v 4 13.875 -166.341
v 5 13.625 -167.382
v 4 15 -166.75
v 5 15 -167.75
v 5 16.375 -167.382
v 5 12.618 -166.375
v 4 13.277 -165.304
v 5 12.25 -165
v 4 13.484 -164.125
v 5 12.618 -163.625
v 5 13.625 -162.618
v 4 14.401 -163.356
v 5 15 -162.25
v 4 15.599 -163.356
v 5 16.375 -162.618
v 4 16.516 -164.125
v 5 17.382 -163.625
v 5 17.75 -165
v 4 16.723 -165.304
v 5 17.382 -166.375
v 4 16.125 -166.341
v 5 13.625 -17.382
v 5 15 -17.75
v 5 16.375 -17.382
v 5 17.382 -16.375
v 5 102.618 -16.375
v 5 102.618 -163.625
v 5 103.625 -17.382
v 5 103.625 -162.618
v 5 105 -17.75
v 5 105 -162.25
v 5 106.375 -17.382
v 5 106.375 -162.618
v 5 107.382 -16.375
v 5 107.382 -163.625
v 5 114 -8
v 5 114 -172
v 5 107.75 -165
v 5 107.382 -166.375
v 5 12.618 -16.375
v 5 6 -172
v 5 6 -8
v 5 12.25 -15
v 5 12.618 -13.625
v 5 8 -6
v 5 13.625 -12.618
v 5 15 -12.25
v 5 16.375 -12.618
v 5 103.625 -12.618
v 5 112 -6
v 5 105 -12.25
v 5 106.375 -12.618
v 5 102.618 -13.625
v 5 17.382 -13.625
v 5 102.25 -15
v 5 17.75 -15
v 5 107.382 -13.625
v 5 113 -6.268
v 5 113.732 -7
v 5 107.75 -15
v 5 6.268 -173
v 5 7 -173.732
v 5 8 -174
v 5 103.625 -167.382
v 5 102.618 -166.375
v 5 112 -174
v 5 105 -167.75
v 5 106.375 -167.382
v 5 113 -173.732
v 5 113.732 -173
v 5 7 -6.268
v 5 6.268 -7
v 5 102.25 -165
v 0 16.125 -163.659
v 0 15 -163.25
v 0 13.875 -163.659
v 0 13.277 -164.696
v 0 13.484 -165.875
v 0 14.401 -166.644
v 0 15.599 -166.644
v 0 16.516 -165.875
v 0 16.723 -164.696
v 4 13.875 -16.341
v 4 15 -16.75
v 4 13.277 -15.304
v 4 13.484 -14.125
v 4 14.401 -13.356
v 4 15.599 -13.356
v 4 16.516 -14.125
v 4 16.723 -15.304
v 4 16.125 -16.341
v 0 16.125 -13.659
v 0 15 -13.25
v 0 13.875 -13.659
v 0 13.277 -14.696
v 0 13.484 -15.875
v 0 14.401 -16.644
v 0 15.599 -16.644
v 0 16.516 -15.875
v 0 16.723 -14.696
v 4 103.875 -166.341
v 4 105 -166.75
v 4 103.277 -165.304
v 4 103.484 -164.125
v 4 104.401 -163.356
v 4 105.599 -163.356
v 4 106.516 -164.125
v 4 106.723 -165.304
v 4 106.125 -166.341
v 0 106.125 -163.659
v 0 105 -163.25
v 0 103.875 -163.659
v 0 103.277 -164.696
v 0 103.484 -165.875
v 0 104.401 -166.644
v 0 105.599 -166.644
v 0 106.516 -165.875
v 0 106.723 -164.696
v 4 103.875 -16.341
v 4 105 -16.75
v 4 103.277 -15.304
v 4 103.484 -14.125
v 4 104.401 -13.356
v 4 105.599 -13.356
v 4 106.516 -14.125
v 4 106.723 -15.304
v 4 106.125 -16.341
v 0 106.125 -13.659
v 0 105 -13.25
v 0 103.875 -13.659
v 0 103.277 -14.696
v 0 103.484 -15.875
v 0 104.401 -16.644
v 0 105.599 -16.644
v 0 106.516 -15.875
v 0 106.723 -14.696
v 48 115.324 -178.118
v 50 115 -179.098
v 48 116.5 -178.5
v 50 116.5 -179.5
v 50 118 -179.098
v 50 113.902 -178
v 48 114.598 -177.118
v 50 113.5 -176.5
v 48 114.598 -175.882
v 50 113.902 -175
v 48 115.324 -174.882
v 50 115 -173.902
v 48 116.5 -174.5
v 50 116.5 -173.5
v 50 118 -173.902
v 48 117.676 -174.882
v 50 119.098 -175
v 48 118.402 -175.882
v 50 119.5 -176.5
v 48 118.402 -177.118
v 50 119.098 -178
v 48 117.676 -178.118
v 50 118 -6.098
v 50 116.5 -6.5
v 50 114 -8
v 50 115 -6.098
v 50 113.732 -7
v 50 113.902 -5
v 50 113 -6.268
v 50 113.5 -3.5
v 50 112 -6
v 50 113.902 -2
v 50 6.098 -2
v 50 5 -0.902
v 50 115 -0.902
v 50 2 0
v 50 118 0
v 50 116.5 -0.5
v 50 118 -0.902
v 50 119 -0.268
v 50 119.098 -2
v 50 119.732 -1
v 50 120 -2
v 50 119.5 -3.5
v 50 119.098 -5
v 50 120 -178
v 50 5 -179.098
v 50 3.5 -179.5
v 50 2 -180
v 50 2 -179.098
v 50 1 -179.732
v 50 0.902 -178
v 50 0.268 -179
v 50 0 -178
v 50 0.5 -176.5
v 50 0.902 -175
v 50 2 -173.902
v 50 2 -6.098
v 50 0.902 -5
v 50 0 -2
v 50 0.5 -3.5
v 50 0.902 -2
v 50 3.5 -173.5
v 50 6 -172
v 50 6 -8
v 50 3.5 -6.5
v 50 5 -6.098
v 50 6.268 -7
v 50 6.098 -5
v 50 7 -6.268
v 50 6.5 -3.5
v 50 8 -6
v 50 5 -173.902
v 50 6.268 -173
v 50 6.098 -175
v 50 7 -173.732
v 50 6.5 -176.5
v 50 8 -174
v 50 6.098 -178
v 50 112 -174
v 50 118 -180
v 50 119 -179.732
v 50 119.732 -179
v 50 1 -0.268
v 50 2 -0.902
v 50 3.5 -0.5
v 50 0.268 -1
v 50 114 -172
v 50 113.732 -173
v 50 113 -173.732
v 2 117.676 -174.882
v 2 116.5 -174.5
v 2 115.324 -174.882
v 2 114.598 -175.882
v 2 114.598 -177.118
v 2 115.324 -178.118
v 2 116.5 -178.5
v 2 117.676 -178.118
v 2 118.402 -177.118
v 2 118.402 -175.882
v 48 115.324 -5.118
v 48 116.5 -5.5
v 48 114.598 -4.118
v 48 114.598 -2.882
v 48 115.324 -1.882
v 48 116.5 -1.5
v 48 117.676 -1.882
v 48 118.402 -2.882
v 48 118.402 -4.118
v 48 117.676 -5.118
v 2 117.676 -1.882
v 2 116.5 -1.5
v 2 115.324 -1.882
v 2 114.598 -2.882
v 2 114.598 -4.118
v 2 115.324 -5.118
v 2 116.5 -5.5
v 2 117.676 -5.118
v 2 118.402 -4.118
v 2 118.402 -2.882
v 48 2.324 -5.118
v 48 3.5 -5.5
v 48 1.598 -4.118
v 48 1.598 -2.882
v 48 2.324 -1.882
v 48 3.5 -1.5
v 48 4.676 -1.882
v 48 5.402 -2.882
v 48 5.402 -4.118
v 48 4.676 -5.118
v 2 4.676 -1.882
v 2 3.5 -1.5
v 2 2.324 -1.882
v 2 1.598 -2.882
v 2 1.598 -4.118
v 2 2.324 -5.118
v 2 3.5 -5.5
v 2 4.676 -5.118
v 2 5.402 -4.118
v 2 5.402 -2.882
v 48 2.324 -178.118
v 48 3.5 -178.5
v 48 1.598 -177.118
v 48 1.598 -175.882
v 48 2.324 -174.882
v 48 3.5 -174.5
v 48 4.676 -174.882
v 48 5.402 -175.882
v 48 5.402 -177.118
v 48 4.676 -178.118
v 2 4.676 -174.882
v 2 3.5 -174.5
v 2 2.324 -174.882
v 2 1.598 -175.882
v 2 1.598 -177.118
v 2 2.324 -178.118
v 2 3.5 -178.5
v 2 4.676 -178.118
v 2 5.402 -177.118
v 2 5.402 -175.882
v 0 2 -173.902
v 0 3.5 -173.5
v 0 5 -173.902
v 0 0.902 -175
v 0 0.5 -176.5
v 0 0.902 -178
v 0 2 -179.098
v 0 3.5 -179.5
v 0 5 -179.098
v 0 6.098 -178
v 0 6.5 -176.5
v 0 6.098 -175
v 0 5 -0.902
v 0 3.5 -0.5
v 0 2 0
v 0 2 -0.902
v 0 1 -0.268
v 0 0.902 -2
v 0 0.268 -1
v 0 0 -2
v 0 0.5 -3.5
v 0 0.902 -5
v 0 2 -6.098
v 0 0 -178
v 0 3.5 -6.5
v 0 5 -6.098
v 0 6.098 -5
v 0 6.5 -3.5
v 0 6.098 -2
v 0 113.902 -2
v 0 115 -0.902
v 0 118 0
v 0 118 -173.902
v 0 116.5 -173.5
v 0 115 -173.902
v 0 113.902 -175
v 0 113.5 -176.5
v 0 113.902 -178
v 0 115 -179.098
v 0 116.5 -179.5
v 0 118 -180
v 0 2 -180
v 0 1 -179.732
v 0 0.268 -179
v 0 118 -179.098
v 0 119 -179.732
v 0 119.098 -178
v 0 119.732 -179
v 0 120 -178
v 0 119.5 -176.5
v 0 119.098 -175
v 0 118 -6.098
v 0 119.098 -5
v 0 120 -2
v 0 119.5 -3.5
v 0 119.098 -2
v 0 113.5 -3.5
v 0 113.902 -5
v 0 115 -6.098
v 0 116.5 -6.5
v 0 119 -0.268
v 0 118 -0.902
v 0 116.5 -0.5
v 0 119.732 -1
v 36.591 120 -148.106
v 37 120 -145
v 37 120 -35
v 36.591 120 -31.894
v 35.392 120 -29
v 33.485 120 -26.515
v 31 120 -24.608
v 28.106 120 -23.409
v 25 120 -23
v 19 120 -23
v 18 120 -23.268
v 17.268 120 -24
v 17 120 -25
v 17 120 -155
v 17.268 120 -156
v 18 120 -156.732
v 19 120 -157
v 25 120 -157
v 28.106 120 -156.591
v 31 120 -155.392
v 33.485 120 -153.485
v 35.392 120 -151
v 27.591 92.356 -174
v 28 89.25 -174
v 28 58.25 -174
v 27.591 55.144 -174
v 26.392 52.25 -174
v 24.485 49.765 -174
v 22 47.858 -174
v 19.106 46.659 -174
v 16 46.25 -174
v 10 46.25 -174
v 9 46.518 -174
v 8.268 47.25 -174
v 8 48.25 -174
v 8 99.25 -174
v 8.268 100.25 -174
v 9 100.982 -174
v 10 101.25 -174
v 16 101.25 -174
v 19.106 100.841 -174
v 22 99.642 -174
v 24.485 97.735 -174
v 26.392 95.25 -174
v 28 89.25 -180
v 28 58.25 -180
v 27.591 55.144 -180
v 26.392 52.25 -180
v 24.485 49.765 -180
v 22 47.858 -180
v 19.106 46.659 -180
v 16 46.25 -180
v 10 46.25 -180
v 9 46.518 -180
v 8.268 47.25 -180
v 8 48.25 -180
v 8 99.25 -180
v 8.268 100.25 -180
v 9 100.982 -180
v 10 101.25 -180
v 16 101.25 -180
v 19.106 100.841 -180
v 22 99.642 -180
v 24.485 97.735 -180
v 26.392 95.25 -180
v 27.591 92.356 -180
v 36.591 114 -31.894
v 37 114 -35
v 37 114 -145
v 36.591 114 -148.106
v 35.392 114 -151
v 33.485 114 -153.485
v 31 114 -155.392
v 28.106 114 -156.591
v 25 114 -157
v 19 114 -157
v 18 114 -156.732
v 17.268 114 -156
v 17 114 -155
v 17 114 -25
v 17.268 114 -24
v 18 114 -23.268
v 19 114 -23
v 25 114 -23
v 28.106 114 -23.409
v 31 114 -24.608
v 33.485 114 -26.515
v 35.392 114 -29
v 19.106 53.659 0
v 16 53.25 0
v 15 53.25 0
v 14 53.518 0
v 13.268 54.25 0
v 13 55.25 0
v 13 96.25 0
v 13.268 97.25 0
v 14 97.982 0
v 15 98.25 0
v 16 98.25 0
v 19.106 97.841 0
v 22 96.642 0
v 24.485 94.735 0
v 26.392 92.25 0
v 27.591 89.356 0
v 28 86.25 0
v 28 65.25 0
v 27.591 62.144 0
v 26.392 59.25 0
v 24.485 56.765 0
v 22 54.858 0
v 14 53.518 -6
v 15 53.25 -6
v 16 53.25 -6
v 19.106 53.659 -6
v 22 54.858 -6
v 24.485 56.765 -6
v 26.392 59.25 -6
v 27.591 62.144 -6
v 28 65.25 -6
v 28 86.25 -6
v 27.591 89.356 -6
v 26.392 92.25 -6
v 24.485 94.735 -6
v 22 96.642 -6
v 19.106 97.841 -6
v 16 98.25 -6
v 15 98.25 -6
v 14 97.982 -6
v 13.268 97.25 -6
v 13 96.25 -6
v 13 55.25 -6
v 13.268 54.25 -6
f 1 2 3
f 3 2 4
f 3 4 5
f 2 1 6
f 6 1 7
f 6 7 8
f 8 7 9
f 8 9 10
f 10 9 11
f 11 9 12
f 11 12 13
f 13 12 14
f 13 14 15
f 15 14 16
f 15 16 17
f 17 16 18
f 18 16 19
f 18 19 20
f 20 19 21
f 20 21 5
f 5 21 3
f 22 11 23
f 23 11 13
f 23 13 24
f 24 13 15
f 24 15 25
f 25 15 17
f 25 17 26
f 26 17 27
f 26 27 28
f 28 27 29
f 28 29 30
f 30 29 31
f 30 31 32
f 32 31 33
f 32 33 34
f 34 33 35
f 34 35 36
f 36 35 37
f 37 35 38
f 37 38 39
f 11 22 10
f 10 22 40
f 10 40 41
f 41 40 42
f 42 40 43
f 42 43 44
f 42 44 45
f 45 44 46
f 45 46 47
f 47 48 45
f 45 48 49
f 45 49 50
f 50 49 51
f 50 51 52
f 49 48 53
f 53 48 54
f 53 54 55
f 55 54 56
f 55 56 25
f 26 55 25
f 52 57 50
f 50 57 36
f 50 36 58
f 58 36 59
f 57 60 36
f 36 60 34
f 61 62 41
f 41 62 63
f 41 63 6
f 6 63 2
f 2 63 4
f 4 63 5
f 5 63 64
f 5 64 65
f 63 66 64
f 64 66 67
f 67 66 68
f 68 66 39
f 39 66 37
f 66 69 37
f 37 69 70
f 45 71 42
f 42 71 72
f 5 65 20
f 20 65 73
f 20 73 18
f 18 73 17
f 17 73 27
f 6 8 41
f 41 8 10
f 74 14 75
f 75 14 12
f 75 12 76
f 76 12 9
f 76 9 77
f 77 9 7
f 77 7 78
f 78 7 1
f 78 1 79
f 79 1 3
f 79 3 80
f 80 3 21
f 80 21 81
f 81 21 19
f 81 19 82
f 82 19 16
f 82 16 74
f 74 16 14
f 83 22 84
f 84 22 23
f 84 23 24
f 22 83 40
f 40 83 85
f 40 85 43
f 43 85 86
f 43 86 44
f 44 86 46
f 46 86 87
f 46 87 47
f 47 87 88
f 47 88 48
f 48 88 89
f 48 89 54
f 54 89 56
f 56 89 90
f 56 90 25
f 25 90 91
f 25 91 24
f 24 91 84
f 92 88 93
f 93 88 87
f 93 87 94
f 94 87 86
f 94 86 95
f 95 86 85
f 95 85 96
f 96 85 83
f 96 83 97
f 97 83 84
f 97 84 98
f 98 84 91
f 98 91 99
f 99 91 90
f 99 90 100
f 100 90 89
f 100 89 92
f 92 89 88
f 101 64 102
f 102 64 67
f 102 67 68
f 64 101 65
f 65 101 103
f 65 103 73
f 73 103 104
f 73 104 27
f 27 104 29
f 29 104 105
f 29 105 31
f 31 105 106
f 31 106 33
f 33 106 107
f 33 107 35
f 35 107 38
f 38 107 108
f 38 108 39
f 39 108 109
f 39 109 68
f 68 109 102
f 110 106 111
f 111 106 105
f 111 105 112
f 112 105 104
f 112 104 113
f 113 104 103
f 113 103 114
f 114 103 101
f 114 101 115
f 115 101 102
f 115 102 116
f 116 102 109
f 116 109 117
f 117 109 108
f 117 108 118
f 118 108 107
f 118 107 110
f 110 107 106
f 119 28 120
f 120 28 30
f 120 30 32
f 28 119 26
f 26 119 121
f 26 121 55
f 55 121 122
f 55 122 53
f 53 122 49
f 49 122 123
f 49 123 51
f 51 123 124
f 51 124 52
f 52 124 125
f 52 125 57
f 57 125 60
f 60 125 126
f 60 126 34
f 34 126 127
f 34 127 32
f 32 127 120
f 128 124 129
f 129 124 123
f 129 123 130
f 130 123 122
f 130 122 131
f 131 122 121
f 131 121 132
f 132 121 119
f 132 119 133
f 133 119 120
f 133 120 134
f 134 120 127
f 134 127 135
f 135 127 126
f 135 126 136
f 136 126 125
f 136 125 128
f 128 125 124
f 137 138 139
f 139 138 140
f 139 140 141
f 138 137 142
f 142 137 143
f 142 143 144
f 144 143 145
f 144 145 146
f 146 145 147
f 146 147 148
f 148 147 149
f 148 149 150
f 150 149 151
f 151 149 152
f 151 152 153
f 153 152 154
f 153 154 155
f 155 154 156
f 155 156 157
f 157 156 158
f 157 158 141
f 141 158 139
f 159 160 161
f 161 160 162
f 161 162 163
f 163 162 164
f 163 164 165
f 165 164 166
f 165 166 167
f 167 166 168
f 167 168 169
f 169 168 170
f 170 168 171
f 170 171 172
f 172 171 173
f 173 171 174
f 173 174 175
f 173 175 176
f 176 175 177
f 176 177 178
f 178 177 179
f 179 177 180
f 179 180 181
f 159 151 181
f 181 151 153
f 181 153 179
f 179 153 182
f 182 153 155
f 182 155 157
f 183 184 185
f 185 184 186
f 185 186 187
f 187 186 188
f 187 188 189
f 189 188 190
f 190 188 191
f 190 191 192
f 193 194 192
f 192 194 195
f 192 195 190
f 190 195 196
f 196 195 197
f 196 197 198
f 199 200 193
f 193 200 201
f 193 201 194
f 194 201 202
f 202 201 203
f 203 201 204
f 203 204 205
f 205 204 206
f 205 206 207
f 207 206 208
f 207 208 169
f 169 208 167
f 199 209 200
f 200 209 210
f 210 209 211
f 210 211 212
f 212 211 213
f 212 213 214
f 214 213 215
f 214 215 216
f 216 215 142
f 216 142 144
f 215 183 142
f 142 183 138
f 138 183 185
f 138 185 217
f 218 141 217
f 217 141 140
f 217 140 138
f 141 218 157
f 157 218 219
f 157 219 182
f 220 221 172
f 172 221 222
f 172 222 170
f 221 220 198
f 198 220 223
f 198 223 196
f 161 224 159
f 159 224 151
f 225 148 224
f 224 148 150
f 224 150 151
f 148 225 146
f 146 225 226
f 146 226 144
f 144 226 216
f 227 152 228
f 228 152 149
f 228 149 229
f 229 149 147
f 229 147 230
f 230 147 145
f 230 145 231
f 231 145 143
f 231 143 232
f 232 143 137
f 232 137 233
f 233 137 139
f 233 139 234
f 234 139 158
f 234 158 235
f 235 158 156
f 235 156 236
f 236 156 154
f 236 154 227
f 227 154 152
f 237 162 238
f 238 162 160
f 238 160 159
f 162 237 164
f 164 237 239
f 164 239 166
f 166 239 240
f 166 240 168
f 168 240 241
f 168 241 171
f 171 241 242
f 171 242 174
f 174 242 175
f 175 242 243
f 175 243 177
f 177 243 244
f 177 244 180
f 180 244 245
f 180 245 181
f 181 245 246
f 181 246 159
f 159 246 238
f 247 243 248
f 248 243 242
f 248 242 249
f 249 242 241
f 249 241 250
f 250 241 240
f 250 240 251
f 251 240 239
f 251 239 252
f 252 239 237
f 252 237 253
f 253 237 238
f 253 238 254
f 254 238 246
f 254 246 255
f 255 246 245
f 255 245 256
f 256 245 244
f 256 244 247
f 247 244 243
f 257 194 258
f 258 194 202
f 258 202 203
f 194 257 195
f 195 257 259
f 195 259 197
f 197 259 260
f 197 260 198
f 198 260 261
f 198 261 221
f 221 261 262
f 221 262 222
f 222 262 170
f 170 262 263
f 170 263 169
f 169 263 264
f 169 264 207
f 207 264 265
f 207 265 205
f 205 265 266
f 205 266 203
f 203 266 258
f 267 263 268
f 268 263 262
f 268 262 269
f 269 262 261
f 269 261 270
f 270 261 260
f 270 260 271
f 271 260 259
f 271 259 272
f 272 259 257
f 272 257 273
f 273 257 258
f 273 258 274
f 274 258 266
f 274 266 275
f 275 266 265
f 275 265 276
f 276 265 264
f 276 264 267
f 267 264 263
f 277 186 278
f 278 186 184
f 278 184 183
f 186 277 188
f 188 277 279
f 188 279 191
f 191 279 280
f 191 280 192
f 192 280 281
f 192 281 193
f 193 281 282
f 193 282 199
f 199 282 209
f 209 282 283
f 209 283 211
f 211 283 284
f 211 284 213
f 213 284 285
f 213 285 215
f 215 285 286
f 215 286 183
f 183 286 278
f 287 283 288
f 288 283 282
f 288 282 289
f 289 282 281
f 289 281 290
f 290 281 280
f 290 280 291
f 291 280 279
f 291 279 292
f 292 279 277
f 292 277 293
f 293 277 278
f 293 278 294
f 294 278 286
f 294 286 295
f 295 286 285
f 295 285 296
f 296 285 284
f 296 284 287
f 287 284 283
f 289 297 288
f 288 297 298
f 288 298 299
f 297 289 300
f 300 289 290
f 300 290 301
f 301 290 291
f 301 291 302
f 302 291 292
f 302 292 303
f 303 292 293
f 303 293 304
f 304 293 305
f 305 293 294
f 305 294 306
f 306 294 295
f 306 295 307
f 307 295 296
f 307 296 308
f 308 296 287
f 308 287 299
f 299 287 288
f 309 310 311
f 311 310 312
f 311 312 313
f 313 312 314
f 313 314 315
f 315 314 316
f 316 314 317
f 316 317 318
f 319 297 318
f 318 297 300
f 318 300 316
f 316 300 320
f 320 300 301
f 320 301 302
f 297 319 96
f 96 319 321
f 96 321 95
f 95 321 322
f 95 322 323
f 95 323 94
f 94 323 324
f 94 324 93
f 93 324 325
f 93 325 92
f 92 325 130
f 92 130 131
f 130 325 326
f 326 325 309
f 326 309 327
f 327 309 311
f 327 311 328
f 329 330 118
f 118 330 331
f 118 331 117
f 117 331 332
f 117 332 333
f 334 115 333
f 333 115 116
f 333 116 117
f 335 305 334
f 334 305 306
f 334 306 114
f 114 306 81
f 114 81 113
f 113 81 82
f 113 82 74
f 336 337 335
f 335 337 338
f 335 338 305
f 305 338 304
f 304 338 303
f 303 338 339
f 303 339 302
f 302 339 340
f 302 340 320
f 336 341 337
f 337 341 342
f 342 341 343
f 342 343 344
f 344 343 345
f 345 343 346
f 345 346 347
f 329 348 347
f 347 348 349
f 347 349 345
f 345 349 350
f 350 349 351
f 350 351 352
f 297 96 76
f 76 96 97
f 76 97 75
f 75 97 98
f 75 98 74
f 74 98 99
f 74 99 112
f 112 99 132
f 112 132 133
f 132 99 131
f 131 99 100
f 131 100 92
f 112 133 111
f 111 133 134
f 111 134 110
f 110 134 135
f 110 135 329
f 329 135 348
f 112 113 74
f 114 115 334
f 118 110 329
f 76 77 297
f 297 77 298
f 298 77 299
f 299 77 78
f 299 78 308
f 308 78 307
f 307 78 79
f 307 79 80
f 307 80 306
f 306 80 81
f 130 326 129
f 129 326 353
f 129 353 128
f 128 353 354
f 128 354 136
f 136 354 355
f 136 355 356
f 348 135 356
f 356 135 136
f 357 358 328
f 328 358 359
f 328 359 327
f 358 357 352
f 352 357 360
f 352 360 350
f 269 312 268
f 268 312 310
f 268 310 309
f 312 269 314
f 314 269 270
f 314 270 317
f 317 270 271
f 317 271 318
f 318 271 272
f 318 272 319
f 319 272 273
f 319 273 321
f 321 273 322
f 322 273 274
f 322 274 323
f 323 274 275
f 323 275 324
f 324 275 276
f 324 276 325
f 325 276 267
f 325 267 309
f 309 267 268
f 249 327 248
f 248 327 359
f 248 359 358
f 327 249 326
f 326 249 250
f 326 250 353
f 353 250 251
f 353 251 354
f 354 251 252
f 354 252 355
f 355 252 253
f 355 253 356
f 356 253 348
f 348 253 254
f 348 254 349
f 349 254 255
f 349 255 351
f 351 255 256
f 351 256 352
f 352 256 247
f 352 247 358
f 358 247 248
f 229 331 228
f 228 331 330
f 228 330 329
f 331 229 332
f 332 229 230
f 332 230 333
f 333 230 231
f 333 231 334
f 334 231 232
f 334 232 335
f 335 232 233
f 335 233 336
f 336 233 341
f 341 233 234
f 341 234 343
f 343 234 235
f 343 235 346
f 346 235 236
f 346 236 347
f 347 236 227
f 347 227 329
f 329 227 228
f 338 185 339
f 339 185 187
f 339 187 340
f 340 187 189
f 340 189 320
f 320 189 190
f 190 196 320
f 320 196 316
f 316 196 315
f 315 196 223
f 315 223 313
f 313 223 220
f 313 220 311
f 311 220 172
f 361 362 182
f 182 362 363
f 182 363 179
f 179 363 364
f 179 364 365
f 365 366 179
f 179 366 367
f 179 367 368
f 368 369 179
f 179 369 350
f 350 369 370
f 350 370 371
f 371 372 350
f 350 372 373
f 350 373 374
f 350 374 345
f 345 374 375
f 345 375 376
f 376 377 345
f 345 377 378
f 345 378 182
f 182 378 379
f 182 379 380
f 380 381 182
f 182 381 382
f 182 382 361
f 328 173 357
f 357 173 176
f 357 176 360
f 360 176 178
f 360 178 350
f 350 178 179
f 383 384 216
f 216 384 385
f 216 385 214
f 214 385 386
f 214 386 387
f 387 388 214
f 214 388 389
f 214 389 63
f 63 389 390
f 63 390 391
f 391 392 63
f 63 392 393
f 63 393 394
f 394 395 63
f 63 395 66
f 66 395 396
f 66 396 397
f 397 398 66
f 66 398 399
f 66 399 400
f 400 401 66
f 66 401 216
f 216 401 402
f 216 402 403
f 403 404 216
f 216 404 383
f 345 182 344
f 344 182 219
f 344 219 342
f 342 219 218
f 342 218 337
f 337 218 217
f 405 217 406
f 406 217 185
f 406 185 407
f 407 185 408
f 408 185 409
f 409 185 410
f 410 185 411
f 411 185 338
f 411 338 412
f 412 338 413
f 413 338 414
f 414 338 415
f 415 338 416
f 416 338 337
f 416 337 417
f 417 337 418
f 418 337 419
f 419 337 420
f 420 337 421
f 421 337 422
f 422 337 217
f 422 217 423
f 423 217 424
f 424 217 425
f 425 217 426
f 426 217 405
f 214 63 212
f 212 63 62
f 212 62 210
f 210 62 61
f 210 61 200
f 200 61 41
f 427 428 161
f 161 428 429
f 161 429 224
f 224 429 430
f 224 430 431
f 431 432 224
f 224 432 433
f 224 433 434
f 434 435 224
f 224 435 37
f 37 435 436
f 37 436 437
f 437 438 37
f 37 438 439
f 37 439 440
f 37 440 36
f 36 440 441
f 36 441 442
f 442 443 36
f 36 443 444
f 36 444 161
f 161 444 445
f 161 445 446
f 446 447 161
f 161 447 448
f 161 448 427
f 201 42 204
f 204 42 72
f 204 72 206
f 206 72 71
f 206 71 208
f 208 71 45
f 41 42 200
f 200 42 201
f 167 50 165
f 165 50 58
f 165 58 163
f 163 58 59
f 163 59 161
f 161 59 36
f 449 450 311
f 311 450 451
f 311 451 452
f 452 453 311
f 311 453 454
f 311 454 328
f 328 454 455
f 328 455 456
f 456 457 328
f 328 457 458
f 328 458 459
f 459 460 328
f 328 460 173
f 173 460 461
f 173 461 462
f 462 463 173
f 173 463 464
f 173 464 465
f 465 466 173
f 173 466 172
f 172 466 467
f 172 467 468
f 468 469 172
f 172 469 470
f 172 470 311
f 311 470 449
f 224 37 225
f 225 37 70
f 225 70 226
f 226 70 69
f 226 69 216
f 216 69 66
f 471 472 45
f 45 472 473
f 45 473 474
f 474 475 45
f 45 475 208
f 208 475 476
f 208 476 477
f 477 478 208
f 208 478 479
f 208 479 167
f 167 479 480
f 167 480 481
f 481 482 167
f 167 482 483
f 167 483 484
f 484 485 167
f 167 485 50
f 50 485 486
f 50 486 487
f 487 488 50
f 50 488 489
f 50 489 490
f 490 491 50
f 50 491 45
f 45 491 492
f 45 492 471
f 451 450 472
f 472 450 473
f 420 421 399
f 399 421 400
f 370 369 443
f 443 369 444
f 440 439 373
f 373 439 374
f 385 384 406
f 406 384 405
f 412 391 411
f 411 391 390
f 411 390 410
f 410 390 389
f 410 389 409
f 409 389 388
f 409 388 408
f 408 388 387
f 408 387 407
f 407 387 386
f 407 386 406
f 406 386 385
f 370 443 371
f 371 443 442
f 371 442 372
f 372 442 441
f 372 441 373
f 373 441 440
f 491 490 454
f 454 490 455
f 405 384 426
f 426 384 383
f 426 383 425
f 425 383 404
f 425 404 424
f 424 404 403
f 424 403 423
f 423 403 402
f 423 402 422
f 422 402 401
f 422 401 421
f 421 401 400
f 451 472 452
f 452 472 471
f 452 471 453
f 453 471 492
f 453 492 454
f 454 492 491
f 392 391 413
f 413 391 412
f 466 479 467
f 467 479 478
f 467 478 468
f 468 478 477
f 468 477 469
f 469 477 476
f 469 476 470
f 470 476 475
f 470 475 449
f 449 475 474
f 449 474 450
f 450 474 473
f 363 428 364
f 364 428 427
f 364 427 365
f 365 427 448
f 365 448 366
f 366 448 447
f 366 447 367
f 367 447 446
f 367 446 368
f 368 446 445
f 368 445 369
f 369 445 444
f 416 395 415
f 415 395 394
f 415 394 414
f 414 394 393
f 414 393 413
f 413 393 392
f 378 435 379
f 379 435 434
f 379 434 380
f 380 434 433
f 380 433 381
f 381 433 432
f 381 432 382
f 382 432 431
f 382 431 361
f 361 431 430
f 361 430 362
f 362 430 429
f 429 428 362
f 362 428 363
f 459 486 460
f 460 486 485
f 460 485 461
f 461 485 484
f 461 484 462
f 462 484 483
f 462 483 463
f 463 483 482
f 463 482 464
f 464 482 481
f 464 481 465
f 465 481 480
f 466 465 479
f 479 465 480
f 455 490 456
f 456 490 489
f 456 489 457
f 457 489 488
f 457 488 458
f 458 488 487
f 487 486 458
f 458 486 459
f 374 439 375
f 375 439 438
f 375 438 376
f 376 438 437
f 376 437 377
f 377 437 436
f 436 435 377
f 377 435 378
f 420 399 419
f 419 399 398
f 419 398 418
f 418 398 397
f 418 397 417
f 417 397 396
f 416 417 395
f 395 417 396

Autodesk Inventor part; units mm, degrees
ref_plane "YZ Plane" through (0, 0, 0) normal (1, 0, 0) x (0, 1, 0)
ref_plane "XZ Plane" through (0, 0, 0) normal (0, 1, 0) x (-1, 0, 0)
ref_plane "XY Plane" through (0, 0, 0) normal (0, 0, 1) x (1, 0, 0)
sketch "Sketch1" plane through (0, 0, 0) normal (1, 0, 0) x (0, 1, 0)
  line L0 (0, 0) -> (120, 0)
  line L1 (120, 0) -> (120, -180)
  line L2 (120, -180) -> (0, -180)
  line L3 (0, -180) -> (0, 0)
  dimension "d0" = 120
  dimension "d1" = 180
extrude "Extrusion1" add sketch "Sketch1" along normal blind 5
sketch "Sketch2" plane through (5, 0, 0) normal (1, 0, 0) x (0, 0, -1)
  line L0 (180, 0) -> (180, 120) projected
  line L1 (180, 120) -> (0, 120) projected
  line L2 (0, 120) -> (0, 0) projected
  line L3 (0, 0) -> (180, 0) projected
  line L4 (6, 114) -> (174, 114)
  line L5 (174, 114) -> (174, 6)
  line L6 (174, 6) -> (6, 6)
  line L7 (6, 6) -> (6, 114)
  dimension "d4" = 6
extrude "Extrusion2" add sketch "Sketch2" along normal blind 45
fillet "Fillet1" radius 2 8 edges at (27.5, 114, -174) (27.5, 114, -6) (27.5, 6, -6) (27.5, 6, -174) (25, 120, -180) (25, 120, 0) (25, 0, 0) (25, 0, -180)
sketch "Sketch3" plane through (5, 0, 0) normal (1, 0, 0) x (0, 0, -1)
  circle A0 centre (15, 105) radius 1.75
  arc A1 (172, 6) -> (174, 8) centre (172, 8) ccw projected
  line L0 (174, 8) -> (174, 112) projected
  arc A2 (174, 112) -> (172, 114) centre (172, 112) ccw projected
  line L1 (172, 114) -> (8, 114) projected
  arc A3 (8, 114) -> (6, 112) centre (8, 112) ccw projected
  line L2 (6, 112) -> (6, 8) projected
  arc A4 (6, 8) -> (8, 6) centre (8, 8) ccw projected
  line L3 (8, 6) -> (172, 6) projected
  circle A5 centre (165, 105) radius 1.75
  circle A6 centre (15, 15) radius 1.75
  circle A7 centre (165, 15) radius 1.75
  line L4 (15, 105) -> (15, 114) construction
  line L5 (15, 105) -> (6, 105) construction
  line L6 (165, 15) -> (165, 6) construction
  line L7 (165, 15) -> (174, 15) construction
  point P0 (0, 0)
  dimension "d8" = 3.5
  dimension "d12" = 150
  dimension "d15" = 90
extrude "Extrusion3" cut sketch "Sketch3" against normal blind 20 contours A0 | A5 | A6 | A7
sketch "Sketch4" plane through (50, 0, 0) normal (1, 0, 0) x (0, 0, -1)
  arc A0 (178, 0) -> (180, 2) centre (178, 2) ccw projected
  line L0 (180, 2) -> (180, 118) projected
  arc A1 (180, 118) -> (178, 120) centre (178, 118) ccw projected
  line L1 (178, 120) -> (2, 120) projected
  arc A2 (2, 120) -> (0, 118) centre (2, 118) ccw projected
  line L2 (0, 118) -> (0, 2) projected
  arc A3 (0, 2) -> (2, 0) centre (2, 2) ccw projected
  line L3 (2, 0) -> (178, 0) projected
  line L4 (8, 114) -> (172, 114) projected
  arc A4 (174, 112) -> (172, 114) centre (172, 112) ccw projected
  line L5 (174, 112) -> (174, 8) projected
  arc A5 (172, 6) -> (174, 8) centre (172, 8) ccw projected
  line L6 (172, 6) -> (8, 6) projected
  arc A6 (6, 8) -> (8, 6) centre (8, 8) ccw projected
  line L7 (6, 8) -> (6, 112) projected
  arc A7 (8, 114) -> (6, 112) centre (8, 112) ccw projected
  circle A8 centre (3.5, 116.5) radius 2
  line L8 (8, 114) -> (172, 114) projected
  line L9 (6, 8) -> (6, 112) projected
  circle A9 centre (176.5, 116.5) radius 2
  circle A10 centre (176.5, 3.5) radius 2
  circle A11 centre (3.5, 3.5) radius 2
  point P0 (0, 0)
  dimension "d22" = 4
  dimension "d23" = 2.5
  dimension "d24" = 2.5
  dimension "d25" = 4
  dimension "d26" = 4
  dimension "d27" = 4
  dimension "d28" = 2.5
  dimension "d29" = 2.5
  dimension "d30" = 2.5
  dimension "d31" = 2.5
  dimension "d32" = 2.5
  dimension "d33" = 2.5
extrude "Extrusion4" cut sketch "Sketch4" against normal through all contours A8 | A9 | A10 | A11
chamfer "Chamfer1" distance 1 distance2 2 4 edges at (0, 116.5, -174.5) (0, 116.5, -1.5) (0, 3.5, -1.5) (0, 3.5, -174.5) measured on face at (0, 45.2711, -65.5165)
chamfer "Chamfer2" distance 1 distance2 2 4 edges at (50, 3.5, -174.5) (50, 3.5, -1.5) (50, 116.5, -1.5) (50, 116.5, -174.5) measured on face at (50, 3.4492, -117.3333)
chamfer "Chamfer3" distance 1 distance2 1 4 edges at (5, 105, -13.25) (5, 105, -163.25) (5, 15, -13.25) (5, 15, -163.25) measured on face at (5, 45.2711, -65.5165)
sketch "Sketch5" plane through (5, 114, -172) normal (0, -1, 0) x (1, 0, 0)
  line L0 (45, 170) -> (-5, 170) projected
  line L1 (45, -6) -> (45, 170) projected
  line L2 (-5, -6) -> (45, -6) projected
  line L3 (-5, -6) -> (-5, 170) projected
  line L4 (0, 164) -> (45, 164) projected
  line L5 (0, 0) -> (0, 164) projected
  line L6 (45, 0) -> (0, 0) projected
  line L7 (45, 164) -> (45, 0) projected
  line L8 (12, 149) -> (32, 149)
  line L9 (32, 149) -> (32, 15)
  line L10 (32, 15) -> (12, 15)
  line L11 (12, 15) -> (12, 149)
  point P0 (-5, 172)
  point P1 (22.5, 164)
  dimension "d45" = 15
  dimension "d46" = 15
  dimension "d47" = 12
  dimension "d48" = 20
extrude "Extrusion5" cut sketch "Sketch5" against normal blind 45 contours L8 L9 L10 L11
sketch "Sketch6" plane through (5, 8, -174) normal (0, 0, 1) x (1, 0, 0)
  line L0 (-5, 95.25) -> (-5, 98.75) projected
  line L1 (-1, 98.75) -> (-1, 95.25) projected
  line L2 (45, 0) -> (0, 0) projected
  line L3 (45, 104) -> (45, 0) projected
  line L4 (0, 104) -> (45, 104) projected
  line L5 (0, 0) -> (0, 104) projected
  line L6 (3, 93.25) -> (23, 93.25)
  line L7 (23, 93.25) -> (23, 38.25)
  line L8 (23, 38.25) -> (3, 38.25)
  line L9 (3, 38.25) -> (3, 93.25)
  point P0 (-5, -8)
  dimension "d51" = 3
  dimension "d52" = 55
  dimension "d53" = 2
  dimension "d54" = 20
extrude "Extrusion6" cut sketch "Sketch6" against normal through all contours L6 L7 L8 L9
sketch "Sketch7" plane through (5, 8, -6) normal (0, 0, -1) x (-1, 0, 0)
  line L0 (0, 0) -> (-45, 0) projected
  line L1 (0, 104) -> (0, 0) projected
  line L2 (-45, 104) -> (0, 104) projected
  line L3 (-45, 0) -> (-45, 104) projected
  line L4 (5, 98.75) -> (5, 95.25) projected
  line L5 (1, 95.25) -> (1, 98.75) projected
  line L6 (-8, 90.25) -> (-23, 90.25)
  line L7 (-23, 90.25) -> (-23, 45.25)
  line L8 (-23, 45.25) -> (-8, 45.25)
  line L9 (-8, 45.25) -> (-8, 90.25)
  point P0 (5, -8)
  dimension "d57" = 45
  dimension "d58" = 5
  dimension "d59" = 8
  dimension "d60" = 15
extrude "Extrusion7" cut sketch "Sketch7" against normal blind 10 contours L9 L8 L7 L6
fillet "Fillet2" radius 12 6 edges at (37, 117, -23) (37, 117, -157) (28, 98.25, -3) (28, 53.25, -3) (28, 101.25, -177) (28, 46.25, -177)
fillet "Fillet3" radius 2 6 edges at (13, 98.25, -3) (17, 117, -157) (8, 101.25, -177) (8, 46.25, -177) (13, 53.25, -3) (17, 117, -23)
equation "\"d28\" = d23"
equation "\"d29\" = d28"
equation "\"d30\" = d29"
equation "\"d31\" = d29"
equation "\"d32\" = d23"
equation "\"d33\" = d23"
properties part number "OCTOPUS_BOX"
